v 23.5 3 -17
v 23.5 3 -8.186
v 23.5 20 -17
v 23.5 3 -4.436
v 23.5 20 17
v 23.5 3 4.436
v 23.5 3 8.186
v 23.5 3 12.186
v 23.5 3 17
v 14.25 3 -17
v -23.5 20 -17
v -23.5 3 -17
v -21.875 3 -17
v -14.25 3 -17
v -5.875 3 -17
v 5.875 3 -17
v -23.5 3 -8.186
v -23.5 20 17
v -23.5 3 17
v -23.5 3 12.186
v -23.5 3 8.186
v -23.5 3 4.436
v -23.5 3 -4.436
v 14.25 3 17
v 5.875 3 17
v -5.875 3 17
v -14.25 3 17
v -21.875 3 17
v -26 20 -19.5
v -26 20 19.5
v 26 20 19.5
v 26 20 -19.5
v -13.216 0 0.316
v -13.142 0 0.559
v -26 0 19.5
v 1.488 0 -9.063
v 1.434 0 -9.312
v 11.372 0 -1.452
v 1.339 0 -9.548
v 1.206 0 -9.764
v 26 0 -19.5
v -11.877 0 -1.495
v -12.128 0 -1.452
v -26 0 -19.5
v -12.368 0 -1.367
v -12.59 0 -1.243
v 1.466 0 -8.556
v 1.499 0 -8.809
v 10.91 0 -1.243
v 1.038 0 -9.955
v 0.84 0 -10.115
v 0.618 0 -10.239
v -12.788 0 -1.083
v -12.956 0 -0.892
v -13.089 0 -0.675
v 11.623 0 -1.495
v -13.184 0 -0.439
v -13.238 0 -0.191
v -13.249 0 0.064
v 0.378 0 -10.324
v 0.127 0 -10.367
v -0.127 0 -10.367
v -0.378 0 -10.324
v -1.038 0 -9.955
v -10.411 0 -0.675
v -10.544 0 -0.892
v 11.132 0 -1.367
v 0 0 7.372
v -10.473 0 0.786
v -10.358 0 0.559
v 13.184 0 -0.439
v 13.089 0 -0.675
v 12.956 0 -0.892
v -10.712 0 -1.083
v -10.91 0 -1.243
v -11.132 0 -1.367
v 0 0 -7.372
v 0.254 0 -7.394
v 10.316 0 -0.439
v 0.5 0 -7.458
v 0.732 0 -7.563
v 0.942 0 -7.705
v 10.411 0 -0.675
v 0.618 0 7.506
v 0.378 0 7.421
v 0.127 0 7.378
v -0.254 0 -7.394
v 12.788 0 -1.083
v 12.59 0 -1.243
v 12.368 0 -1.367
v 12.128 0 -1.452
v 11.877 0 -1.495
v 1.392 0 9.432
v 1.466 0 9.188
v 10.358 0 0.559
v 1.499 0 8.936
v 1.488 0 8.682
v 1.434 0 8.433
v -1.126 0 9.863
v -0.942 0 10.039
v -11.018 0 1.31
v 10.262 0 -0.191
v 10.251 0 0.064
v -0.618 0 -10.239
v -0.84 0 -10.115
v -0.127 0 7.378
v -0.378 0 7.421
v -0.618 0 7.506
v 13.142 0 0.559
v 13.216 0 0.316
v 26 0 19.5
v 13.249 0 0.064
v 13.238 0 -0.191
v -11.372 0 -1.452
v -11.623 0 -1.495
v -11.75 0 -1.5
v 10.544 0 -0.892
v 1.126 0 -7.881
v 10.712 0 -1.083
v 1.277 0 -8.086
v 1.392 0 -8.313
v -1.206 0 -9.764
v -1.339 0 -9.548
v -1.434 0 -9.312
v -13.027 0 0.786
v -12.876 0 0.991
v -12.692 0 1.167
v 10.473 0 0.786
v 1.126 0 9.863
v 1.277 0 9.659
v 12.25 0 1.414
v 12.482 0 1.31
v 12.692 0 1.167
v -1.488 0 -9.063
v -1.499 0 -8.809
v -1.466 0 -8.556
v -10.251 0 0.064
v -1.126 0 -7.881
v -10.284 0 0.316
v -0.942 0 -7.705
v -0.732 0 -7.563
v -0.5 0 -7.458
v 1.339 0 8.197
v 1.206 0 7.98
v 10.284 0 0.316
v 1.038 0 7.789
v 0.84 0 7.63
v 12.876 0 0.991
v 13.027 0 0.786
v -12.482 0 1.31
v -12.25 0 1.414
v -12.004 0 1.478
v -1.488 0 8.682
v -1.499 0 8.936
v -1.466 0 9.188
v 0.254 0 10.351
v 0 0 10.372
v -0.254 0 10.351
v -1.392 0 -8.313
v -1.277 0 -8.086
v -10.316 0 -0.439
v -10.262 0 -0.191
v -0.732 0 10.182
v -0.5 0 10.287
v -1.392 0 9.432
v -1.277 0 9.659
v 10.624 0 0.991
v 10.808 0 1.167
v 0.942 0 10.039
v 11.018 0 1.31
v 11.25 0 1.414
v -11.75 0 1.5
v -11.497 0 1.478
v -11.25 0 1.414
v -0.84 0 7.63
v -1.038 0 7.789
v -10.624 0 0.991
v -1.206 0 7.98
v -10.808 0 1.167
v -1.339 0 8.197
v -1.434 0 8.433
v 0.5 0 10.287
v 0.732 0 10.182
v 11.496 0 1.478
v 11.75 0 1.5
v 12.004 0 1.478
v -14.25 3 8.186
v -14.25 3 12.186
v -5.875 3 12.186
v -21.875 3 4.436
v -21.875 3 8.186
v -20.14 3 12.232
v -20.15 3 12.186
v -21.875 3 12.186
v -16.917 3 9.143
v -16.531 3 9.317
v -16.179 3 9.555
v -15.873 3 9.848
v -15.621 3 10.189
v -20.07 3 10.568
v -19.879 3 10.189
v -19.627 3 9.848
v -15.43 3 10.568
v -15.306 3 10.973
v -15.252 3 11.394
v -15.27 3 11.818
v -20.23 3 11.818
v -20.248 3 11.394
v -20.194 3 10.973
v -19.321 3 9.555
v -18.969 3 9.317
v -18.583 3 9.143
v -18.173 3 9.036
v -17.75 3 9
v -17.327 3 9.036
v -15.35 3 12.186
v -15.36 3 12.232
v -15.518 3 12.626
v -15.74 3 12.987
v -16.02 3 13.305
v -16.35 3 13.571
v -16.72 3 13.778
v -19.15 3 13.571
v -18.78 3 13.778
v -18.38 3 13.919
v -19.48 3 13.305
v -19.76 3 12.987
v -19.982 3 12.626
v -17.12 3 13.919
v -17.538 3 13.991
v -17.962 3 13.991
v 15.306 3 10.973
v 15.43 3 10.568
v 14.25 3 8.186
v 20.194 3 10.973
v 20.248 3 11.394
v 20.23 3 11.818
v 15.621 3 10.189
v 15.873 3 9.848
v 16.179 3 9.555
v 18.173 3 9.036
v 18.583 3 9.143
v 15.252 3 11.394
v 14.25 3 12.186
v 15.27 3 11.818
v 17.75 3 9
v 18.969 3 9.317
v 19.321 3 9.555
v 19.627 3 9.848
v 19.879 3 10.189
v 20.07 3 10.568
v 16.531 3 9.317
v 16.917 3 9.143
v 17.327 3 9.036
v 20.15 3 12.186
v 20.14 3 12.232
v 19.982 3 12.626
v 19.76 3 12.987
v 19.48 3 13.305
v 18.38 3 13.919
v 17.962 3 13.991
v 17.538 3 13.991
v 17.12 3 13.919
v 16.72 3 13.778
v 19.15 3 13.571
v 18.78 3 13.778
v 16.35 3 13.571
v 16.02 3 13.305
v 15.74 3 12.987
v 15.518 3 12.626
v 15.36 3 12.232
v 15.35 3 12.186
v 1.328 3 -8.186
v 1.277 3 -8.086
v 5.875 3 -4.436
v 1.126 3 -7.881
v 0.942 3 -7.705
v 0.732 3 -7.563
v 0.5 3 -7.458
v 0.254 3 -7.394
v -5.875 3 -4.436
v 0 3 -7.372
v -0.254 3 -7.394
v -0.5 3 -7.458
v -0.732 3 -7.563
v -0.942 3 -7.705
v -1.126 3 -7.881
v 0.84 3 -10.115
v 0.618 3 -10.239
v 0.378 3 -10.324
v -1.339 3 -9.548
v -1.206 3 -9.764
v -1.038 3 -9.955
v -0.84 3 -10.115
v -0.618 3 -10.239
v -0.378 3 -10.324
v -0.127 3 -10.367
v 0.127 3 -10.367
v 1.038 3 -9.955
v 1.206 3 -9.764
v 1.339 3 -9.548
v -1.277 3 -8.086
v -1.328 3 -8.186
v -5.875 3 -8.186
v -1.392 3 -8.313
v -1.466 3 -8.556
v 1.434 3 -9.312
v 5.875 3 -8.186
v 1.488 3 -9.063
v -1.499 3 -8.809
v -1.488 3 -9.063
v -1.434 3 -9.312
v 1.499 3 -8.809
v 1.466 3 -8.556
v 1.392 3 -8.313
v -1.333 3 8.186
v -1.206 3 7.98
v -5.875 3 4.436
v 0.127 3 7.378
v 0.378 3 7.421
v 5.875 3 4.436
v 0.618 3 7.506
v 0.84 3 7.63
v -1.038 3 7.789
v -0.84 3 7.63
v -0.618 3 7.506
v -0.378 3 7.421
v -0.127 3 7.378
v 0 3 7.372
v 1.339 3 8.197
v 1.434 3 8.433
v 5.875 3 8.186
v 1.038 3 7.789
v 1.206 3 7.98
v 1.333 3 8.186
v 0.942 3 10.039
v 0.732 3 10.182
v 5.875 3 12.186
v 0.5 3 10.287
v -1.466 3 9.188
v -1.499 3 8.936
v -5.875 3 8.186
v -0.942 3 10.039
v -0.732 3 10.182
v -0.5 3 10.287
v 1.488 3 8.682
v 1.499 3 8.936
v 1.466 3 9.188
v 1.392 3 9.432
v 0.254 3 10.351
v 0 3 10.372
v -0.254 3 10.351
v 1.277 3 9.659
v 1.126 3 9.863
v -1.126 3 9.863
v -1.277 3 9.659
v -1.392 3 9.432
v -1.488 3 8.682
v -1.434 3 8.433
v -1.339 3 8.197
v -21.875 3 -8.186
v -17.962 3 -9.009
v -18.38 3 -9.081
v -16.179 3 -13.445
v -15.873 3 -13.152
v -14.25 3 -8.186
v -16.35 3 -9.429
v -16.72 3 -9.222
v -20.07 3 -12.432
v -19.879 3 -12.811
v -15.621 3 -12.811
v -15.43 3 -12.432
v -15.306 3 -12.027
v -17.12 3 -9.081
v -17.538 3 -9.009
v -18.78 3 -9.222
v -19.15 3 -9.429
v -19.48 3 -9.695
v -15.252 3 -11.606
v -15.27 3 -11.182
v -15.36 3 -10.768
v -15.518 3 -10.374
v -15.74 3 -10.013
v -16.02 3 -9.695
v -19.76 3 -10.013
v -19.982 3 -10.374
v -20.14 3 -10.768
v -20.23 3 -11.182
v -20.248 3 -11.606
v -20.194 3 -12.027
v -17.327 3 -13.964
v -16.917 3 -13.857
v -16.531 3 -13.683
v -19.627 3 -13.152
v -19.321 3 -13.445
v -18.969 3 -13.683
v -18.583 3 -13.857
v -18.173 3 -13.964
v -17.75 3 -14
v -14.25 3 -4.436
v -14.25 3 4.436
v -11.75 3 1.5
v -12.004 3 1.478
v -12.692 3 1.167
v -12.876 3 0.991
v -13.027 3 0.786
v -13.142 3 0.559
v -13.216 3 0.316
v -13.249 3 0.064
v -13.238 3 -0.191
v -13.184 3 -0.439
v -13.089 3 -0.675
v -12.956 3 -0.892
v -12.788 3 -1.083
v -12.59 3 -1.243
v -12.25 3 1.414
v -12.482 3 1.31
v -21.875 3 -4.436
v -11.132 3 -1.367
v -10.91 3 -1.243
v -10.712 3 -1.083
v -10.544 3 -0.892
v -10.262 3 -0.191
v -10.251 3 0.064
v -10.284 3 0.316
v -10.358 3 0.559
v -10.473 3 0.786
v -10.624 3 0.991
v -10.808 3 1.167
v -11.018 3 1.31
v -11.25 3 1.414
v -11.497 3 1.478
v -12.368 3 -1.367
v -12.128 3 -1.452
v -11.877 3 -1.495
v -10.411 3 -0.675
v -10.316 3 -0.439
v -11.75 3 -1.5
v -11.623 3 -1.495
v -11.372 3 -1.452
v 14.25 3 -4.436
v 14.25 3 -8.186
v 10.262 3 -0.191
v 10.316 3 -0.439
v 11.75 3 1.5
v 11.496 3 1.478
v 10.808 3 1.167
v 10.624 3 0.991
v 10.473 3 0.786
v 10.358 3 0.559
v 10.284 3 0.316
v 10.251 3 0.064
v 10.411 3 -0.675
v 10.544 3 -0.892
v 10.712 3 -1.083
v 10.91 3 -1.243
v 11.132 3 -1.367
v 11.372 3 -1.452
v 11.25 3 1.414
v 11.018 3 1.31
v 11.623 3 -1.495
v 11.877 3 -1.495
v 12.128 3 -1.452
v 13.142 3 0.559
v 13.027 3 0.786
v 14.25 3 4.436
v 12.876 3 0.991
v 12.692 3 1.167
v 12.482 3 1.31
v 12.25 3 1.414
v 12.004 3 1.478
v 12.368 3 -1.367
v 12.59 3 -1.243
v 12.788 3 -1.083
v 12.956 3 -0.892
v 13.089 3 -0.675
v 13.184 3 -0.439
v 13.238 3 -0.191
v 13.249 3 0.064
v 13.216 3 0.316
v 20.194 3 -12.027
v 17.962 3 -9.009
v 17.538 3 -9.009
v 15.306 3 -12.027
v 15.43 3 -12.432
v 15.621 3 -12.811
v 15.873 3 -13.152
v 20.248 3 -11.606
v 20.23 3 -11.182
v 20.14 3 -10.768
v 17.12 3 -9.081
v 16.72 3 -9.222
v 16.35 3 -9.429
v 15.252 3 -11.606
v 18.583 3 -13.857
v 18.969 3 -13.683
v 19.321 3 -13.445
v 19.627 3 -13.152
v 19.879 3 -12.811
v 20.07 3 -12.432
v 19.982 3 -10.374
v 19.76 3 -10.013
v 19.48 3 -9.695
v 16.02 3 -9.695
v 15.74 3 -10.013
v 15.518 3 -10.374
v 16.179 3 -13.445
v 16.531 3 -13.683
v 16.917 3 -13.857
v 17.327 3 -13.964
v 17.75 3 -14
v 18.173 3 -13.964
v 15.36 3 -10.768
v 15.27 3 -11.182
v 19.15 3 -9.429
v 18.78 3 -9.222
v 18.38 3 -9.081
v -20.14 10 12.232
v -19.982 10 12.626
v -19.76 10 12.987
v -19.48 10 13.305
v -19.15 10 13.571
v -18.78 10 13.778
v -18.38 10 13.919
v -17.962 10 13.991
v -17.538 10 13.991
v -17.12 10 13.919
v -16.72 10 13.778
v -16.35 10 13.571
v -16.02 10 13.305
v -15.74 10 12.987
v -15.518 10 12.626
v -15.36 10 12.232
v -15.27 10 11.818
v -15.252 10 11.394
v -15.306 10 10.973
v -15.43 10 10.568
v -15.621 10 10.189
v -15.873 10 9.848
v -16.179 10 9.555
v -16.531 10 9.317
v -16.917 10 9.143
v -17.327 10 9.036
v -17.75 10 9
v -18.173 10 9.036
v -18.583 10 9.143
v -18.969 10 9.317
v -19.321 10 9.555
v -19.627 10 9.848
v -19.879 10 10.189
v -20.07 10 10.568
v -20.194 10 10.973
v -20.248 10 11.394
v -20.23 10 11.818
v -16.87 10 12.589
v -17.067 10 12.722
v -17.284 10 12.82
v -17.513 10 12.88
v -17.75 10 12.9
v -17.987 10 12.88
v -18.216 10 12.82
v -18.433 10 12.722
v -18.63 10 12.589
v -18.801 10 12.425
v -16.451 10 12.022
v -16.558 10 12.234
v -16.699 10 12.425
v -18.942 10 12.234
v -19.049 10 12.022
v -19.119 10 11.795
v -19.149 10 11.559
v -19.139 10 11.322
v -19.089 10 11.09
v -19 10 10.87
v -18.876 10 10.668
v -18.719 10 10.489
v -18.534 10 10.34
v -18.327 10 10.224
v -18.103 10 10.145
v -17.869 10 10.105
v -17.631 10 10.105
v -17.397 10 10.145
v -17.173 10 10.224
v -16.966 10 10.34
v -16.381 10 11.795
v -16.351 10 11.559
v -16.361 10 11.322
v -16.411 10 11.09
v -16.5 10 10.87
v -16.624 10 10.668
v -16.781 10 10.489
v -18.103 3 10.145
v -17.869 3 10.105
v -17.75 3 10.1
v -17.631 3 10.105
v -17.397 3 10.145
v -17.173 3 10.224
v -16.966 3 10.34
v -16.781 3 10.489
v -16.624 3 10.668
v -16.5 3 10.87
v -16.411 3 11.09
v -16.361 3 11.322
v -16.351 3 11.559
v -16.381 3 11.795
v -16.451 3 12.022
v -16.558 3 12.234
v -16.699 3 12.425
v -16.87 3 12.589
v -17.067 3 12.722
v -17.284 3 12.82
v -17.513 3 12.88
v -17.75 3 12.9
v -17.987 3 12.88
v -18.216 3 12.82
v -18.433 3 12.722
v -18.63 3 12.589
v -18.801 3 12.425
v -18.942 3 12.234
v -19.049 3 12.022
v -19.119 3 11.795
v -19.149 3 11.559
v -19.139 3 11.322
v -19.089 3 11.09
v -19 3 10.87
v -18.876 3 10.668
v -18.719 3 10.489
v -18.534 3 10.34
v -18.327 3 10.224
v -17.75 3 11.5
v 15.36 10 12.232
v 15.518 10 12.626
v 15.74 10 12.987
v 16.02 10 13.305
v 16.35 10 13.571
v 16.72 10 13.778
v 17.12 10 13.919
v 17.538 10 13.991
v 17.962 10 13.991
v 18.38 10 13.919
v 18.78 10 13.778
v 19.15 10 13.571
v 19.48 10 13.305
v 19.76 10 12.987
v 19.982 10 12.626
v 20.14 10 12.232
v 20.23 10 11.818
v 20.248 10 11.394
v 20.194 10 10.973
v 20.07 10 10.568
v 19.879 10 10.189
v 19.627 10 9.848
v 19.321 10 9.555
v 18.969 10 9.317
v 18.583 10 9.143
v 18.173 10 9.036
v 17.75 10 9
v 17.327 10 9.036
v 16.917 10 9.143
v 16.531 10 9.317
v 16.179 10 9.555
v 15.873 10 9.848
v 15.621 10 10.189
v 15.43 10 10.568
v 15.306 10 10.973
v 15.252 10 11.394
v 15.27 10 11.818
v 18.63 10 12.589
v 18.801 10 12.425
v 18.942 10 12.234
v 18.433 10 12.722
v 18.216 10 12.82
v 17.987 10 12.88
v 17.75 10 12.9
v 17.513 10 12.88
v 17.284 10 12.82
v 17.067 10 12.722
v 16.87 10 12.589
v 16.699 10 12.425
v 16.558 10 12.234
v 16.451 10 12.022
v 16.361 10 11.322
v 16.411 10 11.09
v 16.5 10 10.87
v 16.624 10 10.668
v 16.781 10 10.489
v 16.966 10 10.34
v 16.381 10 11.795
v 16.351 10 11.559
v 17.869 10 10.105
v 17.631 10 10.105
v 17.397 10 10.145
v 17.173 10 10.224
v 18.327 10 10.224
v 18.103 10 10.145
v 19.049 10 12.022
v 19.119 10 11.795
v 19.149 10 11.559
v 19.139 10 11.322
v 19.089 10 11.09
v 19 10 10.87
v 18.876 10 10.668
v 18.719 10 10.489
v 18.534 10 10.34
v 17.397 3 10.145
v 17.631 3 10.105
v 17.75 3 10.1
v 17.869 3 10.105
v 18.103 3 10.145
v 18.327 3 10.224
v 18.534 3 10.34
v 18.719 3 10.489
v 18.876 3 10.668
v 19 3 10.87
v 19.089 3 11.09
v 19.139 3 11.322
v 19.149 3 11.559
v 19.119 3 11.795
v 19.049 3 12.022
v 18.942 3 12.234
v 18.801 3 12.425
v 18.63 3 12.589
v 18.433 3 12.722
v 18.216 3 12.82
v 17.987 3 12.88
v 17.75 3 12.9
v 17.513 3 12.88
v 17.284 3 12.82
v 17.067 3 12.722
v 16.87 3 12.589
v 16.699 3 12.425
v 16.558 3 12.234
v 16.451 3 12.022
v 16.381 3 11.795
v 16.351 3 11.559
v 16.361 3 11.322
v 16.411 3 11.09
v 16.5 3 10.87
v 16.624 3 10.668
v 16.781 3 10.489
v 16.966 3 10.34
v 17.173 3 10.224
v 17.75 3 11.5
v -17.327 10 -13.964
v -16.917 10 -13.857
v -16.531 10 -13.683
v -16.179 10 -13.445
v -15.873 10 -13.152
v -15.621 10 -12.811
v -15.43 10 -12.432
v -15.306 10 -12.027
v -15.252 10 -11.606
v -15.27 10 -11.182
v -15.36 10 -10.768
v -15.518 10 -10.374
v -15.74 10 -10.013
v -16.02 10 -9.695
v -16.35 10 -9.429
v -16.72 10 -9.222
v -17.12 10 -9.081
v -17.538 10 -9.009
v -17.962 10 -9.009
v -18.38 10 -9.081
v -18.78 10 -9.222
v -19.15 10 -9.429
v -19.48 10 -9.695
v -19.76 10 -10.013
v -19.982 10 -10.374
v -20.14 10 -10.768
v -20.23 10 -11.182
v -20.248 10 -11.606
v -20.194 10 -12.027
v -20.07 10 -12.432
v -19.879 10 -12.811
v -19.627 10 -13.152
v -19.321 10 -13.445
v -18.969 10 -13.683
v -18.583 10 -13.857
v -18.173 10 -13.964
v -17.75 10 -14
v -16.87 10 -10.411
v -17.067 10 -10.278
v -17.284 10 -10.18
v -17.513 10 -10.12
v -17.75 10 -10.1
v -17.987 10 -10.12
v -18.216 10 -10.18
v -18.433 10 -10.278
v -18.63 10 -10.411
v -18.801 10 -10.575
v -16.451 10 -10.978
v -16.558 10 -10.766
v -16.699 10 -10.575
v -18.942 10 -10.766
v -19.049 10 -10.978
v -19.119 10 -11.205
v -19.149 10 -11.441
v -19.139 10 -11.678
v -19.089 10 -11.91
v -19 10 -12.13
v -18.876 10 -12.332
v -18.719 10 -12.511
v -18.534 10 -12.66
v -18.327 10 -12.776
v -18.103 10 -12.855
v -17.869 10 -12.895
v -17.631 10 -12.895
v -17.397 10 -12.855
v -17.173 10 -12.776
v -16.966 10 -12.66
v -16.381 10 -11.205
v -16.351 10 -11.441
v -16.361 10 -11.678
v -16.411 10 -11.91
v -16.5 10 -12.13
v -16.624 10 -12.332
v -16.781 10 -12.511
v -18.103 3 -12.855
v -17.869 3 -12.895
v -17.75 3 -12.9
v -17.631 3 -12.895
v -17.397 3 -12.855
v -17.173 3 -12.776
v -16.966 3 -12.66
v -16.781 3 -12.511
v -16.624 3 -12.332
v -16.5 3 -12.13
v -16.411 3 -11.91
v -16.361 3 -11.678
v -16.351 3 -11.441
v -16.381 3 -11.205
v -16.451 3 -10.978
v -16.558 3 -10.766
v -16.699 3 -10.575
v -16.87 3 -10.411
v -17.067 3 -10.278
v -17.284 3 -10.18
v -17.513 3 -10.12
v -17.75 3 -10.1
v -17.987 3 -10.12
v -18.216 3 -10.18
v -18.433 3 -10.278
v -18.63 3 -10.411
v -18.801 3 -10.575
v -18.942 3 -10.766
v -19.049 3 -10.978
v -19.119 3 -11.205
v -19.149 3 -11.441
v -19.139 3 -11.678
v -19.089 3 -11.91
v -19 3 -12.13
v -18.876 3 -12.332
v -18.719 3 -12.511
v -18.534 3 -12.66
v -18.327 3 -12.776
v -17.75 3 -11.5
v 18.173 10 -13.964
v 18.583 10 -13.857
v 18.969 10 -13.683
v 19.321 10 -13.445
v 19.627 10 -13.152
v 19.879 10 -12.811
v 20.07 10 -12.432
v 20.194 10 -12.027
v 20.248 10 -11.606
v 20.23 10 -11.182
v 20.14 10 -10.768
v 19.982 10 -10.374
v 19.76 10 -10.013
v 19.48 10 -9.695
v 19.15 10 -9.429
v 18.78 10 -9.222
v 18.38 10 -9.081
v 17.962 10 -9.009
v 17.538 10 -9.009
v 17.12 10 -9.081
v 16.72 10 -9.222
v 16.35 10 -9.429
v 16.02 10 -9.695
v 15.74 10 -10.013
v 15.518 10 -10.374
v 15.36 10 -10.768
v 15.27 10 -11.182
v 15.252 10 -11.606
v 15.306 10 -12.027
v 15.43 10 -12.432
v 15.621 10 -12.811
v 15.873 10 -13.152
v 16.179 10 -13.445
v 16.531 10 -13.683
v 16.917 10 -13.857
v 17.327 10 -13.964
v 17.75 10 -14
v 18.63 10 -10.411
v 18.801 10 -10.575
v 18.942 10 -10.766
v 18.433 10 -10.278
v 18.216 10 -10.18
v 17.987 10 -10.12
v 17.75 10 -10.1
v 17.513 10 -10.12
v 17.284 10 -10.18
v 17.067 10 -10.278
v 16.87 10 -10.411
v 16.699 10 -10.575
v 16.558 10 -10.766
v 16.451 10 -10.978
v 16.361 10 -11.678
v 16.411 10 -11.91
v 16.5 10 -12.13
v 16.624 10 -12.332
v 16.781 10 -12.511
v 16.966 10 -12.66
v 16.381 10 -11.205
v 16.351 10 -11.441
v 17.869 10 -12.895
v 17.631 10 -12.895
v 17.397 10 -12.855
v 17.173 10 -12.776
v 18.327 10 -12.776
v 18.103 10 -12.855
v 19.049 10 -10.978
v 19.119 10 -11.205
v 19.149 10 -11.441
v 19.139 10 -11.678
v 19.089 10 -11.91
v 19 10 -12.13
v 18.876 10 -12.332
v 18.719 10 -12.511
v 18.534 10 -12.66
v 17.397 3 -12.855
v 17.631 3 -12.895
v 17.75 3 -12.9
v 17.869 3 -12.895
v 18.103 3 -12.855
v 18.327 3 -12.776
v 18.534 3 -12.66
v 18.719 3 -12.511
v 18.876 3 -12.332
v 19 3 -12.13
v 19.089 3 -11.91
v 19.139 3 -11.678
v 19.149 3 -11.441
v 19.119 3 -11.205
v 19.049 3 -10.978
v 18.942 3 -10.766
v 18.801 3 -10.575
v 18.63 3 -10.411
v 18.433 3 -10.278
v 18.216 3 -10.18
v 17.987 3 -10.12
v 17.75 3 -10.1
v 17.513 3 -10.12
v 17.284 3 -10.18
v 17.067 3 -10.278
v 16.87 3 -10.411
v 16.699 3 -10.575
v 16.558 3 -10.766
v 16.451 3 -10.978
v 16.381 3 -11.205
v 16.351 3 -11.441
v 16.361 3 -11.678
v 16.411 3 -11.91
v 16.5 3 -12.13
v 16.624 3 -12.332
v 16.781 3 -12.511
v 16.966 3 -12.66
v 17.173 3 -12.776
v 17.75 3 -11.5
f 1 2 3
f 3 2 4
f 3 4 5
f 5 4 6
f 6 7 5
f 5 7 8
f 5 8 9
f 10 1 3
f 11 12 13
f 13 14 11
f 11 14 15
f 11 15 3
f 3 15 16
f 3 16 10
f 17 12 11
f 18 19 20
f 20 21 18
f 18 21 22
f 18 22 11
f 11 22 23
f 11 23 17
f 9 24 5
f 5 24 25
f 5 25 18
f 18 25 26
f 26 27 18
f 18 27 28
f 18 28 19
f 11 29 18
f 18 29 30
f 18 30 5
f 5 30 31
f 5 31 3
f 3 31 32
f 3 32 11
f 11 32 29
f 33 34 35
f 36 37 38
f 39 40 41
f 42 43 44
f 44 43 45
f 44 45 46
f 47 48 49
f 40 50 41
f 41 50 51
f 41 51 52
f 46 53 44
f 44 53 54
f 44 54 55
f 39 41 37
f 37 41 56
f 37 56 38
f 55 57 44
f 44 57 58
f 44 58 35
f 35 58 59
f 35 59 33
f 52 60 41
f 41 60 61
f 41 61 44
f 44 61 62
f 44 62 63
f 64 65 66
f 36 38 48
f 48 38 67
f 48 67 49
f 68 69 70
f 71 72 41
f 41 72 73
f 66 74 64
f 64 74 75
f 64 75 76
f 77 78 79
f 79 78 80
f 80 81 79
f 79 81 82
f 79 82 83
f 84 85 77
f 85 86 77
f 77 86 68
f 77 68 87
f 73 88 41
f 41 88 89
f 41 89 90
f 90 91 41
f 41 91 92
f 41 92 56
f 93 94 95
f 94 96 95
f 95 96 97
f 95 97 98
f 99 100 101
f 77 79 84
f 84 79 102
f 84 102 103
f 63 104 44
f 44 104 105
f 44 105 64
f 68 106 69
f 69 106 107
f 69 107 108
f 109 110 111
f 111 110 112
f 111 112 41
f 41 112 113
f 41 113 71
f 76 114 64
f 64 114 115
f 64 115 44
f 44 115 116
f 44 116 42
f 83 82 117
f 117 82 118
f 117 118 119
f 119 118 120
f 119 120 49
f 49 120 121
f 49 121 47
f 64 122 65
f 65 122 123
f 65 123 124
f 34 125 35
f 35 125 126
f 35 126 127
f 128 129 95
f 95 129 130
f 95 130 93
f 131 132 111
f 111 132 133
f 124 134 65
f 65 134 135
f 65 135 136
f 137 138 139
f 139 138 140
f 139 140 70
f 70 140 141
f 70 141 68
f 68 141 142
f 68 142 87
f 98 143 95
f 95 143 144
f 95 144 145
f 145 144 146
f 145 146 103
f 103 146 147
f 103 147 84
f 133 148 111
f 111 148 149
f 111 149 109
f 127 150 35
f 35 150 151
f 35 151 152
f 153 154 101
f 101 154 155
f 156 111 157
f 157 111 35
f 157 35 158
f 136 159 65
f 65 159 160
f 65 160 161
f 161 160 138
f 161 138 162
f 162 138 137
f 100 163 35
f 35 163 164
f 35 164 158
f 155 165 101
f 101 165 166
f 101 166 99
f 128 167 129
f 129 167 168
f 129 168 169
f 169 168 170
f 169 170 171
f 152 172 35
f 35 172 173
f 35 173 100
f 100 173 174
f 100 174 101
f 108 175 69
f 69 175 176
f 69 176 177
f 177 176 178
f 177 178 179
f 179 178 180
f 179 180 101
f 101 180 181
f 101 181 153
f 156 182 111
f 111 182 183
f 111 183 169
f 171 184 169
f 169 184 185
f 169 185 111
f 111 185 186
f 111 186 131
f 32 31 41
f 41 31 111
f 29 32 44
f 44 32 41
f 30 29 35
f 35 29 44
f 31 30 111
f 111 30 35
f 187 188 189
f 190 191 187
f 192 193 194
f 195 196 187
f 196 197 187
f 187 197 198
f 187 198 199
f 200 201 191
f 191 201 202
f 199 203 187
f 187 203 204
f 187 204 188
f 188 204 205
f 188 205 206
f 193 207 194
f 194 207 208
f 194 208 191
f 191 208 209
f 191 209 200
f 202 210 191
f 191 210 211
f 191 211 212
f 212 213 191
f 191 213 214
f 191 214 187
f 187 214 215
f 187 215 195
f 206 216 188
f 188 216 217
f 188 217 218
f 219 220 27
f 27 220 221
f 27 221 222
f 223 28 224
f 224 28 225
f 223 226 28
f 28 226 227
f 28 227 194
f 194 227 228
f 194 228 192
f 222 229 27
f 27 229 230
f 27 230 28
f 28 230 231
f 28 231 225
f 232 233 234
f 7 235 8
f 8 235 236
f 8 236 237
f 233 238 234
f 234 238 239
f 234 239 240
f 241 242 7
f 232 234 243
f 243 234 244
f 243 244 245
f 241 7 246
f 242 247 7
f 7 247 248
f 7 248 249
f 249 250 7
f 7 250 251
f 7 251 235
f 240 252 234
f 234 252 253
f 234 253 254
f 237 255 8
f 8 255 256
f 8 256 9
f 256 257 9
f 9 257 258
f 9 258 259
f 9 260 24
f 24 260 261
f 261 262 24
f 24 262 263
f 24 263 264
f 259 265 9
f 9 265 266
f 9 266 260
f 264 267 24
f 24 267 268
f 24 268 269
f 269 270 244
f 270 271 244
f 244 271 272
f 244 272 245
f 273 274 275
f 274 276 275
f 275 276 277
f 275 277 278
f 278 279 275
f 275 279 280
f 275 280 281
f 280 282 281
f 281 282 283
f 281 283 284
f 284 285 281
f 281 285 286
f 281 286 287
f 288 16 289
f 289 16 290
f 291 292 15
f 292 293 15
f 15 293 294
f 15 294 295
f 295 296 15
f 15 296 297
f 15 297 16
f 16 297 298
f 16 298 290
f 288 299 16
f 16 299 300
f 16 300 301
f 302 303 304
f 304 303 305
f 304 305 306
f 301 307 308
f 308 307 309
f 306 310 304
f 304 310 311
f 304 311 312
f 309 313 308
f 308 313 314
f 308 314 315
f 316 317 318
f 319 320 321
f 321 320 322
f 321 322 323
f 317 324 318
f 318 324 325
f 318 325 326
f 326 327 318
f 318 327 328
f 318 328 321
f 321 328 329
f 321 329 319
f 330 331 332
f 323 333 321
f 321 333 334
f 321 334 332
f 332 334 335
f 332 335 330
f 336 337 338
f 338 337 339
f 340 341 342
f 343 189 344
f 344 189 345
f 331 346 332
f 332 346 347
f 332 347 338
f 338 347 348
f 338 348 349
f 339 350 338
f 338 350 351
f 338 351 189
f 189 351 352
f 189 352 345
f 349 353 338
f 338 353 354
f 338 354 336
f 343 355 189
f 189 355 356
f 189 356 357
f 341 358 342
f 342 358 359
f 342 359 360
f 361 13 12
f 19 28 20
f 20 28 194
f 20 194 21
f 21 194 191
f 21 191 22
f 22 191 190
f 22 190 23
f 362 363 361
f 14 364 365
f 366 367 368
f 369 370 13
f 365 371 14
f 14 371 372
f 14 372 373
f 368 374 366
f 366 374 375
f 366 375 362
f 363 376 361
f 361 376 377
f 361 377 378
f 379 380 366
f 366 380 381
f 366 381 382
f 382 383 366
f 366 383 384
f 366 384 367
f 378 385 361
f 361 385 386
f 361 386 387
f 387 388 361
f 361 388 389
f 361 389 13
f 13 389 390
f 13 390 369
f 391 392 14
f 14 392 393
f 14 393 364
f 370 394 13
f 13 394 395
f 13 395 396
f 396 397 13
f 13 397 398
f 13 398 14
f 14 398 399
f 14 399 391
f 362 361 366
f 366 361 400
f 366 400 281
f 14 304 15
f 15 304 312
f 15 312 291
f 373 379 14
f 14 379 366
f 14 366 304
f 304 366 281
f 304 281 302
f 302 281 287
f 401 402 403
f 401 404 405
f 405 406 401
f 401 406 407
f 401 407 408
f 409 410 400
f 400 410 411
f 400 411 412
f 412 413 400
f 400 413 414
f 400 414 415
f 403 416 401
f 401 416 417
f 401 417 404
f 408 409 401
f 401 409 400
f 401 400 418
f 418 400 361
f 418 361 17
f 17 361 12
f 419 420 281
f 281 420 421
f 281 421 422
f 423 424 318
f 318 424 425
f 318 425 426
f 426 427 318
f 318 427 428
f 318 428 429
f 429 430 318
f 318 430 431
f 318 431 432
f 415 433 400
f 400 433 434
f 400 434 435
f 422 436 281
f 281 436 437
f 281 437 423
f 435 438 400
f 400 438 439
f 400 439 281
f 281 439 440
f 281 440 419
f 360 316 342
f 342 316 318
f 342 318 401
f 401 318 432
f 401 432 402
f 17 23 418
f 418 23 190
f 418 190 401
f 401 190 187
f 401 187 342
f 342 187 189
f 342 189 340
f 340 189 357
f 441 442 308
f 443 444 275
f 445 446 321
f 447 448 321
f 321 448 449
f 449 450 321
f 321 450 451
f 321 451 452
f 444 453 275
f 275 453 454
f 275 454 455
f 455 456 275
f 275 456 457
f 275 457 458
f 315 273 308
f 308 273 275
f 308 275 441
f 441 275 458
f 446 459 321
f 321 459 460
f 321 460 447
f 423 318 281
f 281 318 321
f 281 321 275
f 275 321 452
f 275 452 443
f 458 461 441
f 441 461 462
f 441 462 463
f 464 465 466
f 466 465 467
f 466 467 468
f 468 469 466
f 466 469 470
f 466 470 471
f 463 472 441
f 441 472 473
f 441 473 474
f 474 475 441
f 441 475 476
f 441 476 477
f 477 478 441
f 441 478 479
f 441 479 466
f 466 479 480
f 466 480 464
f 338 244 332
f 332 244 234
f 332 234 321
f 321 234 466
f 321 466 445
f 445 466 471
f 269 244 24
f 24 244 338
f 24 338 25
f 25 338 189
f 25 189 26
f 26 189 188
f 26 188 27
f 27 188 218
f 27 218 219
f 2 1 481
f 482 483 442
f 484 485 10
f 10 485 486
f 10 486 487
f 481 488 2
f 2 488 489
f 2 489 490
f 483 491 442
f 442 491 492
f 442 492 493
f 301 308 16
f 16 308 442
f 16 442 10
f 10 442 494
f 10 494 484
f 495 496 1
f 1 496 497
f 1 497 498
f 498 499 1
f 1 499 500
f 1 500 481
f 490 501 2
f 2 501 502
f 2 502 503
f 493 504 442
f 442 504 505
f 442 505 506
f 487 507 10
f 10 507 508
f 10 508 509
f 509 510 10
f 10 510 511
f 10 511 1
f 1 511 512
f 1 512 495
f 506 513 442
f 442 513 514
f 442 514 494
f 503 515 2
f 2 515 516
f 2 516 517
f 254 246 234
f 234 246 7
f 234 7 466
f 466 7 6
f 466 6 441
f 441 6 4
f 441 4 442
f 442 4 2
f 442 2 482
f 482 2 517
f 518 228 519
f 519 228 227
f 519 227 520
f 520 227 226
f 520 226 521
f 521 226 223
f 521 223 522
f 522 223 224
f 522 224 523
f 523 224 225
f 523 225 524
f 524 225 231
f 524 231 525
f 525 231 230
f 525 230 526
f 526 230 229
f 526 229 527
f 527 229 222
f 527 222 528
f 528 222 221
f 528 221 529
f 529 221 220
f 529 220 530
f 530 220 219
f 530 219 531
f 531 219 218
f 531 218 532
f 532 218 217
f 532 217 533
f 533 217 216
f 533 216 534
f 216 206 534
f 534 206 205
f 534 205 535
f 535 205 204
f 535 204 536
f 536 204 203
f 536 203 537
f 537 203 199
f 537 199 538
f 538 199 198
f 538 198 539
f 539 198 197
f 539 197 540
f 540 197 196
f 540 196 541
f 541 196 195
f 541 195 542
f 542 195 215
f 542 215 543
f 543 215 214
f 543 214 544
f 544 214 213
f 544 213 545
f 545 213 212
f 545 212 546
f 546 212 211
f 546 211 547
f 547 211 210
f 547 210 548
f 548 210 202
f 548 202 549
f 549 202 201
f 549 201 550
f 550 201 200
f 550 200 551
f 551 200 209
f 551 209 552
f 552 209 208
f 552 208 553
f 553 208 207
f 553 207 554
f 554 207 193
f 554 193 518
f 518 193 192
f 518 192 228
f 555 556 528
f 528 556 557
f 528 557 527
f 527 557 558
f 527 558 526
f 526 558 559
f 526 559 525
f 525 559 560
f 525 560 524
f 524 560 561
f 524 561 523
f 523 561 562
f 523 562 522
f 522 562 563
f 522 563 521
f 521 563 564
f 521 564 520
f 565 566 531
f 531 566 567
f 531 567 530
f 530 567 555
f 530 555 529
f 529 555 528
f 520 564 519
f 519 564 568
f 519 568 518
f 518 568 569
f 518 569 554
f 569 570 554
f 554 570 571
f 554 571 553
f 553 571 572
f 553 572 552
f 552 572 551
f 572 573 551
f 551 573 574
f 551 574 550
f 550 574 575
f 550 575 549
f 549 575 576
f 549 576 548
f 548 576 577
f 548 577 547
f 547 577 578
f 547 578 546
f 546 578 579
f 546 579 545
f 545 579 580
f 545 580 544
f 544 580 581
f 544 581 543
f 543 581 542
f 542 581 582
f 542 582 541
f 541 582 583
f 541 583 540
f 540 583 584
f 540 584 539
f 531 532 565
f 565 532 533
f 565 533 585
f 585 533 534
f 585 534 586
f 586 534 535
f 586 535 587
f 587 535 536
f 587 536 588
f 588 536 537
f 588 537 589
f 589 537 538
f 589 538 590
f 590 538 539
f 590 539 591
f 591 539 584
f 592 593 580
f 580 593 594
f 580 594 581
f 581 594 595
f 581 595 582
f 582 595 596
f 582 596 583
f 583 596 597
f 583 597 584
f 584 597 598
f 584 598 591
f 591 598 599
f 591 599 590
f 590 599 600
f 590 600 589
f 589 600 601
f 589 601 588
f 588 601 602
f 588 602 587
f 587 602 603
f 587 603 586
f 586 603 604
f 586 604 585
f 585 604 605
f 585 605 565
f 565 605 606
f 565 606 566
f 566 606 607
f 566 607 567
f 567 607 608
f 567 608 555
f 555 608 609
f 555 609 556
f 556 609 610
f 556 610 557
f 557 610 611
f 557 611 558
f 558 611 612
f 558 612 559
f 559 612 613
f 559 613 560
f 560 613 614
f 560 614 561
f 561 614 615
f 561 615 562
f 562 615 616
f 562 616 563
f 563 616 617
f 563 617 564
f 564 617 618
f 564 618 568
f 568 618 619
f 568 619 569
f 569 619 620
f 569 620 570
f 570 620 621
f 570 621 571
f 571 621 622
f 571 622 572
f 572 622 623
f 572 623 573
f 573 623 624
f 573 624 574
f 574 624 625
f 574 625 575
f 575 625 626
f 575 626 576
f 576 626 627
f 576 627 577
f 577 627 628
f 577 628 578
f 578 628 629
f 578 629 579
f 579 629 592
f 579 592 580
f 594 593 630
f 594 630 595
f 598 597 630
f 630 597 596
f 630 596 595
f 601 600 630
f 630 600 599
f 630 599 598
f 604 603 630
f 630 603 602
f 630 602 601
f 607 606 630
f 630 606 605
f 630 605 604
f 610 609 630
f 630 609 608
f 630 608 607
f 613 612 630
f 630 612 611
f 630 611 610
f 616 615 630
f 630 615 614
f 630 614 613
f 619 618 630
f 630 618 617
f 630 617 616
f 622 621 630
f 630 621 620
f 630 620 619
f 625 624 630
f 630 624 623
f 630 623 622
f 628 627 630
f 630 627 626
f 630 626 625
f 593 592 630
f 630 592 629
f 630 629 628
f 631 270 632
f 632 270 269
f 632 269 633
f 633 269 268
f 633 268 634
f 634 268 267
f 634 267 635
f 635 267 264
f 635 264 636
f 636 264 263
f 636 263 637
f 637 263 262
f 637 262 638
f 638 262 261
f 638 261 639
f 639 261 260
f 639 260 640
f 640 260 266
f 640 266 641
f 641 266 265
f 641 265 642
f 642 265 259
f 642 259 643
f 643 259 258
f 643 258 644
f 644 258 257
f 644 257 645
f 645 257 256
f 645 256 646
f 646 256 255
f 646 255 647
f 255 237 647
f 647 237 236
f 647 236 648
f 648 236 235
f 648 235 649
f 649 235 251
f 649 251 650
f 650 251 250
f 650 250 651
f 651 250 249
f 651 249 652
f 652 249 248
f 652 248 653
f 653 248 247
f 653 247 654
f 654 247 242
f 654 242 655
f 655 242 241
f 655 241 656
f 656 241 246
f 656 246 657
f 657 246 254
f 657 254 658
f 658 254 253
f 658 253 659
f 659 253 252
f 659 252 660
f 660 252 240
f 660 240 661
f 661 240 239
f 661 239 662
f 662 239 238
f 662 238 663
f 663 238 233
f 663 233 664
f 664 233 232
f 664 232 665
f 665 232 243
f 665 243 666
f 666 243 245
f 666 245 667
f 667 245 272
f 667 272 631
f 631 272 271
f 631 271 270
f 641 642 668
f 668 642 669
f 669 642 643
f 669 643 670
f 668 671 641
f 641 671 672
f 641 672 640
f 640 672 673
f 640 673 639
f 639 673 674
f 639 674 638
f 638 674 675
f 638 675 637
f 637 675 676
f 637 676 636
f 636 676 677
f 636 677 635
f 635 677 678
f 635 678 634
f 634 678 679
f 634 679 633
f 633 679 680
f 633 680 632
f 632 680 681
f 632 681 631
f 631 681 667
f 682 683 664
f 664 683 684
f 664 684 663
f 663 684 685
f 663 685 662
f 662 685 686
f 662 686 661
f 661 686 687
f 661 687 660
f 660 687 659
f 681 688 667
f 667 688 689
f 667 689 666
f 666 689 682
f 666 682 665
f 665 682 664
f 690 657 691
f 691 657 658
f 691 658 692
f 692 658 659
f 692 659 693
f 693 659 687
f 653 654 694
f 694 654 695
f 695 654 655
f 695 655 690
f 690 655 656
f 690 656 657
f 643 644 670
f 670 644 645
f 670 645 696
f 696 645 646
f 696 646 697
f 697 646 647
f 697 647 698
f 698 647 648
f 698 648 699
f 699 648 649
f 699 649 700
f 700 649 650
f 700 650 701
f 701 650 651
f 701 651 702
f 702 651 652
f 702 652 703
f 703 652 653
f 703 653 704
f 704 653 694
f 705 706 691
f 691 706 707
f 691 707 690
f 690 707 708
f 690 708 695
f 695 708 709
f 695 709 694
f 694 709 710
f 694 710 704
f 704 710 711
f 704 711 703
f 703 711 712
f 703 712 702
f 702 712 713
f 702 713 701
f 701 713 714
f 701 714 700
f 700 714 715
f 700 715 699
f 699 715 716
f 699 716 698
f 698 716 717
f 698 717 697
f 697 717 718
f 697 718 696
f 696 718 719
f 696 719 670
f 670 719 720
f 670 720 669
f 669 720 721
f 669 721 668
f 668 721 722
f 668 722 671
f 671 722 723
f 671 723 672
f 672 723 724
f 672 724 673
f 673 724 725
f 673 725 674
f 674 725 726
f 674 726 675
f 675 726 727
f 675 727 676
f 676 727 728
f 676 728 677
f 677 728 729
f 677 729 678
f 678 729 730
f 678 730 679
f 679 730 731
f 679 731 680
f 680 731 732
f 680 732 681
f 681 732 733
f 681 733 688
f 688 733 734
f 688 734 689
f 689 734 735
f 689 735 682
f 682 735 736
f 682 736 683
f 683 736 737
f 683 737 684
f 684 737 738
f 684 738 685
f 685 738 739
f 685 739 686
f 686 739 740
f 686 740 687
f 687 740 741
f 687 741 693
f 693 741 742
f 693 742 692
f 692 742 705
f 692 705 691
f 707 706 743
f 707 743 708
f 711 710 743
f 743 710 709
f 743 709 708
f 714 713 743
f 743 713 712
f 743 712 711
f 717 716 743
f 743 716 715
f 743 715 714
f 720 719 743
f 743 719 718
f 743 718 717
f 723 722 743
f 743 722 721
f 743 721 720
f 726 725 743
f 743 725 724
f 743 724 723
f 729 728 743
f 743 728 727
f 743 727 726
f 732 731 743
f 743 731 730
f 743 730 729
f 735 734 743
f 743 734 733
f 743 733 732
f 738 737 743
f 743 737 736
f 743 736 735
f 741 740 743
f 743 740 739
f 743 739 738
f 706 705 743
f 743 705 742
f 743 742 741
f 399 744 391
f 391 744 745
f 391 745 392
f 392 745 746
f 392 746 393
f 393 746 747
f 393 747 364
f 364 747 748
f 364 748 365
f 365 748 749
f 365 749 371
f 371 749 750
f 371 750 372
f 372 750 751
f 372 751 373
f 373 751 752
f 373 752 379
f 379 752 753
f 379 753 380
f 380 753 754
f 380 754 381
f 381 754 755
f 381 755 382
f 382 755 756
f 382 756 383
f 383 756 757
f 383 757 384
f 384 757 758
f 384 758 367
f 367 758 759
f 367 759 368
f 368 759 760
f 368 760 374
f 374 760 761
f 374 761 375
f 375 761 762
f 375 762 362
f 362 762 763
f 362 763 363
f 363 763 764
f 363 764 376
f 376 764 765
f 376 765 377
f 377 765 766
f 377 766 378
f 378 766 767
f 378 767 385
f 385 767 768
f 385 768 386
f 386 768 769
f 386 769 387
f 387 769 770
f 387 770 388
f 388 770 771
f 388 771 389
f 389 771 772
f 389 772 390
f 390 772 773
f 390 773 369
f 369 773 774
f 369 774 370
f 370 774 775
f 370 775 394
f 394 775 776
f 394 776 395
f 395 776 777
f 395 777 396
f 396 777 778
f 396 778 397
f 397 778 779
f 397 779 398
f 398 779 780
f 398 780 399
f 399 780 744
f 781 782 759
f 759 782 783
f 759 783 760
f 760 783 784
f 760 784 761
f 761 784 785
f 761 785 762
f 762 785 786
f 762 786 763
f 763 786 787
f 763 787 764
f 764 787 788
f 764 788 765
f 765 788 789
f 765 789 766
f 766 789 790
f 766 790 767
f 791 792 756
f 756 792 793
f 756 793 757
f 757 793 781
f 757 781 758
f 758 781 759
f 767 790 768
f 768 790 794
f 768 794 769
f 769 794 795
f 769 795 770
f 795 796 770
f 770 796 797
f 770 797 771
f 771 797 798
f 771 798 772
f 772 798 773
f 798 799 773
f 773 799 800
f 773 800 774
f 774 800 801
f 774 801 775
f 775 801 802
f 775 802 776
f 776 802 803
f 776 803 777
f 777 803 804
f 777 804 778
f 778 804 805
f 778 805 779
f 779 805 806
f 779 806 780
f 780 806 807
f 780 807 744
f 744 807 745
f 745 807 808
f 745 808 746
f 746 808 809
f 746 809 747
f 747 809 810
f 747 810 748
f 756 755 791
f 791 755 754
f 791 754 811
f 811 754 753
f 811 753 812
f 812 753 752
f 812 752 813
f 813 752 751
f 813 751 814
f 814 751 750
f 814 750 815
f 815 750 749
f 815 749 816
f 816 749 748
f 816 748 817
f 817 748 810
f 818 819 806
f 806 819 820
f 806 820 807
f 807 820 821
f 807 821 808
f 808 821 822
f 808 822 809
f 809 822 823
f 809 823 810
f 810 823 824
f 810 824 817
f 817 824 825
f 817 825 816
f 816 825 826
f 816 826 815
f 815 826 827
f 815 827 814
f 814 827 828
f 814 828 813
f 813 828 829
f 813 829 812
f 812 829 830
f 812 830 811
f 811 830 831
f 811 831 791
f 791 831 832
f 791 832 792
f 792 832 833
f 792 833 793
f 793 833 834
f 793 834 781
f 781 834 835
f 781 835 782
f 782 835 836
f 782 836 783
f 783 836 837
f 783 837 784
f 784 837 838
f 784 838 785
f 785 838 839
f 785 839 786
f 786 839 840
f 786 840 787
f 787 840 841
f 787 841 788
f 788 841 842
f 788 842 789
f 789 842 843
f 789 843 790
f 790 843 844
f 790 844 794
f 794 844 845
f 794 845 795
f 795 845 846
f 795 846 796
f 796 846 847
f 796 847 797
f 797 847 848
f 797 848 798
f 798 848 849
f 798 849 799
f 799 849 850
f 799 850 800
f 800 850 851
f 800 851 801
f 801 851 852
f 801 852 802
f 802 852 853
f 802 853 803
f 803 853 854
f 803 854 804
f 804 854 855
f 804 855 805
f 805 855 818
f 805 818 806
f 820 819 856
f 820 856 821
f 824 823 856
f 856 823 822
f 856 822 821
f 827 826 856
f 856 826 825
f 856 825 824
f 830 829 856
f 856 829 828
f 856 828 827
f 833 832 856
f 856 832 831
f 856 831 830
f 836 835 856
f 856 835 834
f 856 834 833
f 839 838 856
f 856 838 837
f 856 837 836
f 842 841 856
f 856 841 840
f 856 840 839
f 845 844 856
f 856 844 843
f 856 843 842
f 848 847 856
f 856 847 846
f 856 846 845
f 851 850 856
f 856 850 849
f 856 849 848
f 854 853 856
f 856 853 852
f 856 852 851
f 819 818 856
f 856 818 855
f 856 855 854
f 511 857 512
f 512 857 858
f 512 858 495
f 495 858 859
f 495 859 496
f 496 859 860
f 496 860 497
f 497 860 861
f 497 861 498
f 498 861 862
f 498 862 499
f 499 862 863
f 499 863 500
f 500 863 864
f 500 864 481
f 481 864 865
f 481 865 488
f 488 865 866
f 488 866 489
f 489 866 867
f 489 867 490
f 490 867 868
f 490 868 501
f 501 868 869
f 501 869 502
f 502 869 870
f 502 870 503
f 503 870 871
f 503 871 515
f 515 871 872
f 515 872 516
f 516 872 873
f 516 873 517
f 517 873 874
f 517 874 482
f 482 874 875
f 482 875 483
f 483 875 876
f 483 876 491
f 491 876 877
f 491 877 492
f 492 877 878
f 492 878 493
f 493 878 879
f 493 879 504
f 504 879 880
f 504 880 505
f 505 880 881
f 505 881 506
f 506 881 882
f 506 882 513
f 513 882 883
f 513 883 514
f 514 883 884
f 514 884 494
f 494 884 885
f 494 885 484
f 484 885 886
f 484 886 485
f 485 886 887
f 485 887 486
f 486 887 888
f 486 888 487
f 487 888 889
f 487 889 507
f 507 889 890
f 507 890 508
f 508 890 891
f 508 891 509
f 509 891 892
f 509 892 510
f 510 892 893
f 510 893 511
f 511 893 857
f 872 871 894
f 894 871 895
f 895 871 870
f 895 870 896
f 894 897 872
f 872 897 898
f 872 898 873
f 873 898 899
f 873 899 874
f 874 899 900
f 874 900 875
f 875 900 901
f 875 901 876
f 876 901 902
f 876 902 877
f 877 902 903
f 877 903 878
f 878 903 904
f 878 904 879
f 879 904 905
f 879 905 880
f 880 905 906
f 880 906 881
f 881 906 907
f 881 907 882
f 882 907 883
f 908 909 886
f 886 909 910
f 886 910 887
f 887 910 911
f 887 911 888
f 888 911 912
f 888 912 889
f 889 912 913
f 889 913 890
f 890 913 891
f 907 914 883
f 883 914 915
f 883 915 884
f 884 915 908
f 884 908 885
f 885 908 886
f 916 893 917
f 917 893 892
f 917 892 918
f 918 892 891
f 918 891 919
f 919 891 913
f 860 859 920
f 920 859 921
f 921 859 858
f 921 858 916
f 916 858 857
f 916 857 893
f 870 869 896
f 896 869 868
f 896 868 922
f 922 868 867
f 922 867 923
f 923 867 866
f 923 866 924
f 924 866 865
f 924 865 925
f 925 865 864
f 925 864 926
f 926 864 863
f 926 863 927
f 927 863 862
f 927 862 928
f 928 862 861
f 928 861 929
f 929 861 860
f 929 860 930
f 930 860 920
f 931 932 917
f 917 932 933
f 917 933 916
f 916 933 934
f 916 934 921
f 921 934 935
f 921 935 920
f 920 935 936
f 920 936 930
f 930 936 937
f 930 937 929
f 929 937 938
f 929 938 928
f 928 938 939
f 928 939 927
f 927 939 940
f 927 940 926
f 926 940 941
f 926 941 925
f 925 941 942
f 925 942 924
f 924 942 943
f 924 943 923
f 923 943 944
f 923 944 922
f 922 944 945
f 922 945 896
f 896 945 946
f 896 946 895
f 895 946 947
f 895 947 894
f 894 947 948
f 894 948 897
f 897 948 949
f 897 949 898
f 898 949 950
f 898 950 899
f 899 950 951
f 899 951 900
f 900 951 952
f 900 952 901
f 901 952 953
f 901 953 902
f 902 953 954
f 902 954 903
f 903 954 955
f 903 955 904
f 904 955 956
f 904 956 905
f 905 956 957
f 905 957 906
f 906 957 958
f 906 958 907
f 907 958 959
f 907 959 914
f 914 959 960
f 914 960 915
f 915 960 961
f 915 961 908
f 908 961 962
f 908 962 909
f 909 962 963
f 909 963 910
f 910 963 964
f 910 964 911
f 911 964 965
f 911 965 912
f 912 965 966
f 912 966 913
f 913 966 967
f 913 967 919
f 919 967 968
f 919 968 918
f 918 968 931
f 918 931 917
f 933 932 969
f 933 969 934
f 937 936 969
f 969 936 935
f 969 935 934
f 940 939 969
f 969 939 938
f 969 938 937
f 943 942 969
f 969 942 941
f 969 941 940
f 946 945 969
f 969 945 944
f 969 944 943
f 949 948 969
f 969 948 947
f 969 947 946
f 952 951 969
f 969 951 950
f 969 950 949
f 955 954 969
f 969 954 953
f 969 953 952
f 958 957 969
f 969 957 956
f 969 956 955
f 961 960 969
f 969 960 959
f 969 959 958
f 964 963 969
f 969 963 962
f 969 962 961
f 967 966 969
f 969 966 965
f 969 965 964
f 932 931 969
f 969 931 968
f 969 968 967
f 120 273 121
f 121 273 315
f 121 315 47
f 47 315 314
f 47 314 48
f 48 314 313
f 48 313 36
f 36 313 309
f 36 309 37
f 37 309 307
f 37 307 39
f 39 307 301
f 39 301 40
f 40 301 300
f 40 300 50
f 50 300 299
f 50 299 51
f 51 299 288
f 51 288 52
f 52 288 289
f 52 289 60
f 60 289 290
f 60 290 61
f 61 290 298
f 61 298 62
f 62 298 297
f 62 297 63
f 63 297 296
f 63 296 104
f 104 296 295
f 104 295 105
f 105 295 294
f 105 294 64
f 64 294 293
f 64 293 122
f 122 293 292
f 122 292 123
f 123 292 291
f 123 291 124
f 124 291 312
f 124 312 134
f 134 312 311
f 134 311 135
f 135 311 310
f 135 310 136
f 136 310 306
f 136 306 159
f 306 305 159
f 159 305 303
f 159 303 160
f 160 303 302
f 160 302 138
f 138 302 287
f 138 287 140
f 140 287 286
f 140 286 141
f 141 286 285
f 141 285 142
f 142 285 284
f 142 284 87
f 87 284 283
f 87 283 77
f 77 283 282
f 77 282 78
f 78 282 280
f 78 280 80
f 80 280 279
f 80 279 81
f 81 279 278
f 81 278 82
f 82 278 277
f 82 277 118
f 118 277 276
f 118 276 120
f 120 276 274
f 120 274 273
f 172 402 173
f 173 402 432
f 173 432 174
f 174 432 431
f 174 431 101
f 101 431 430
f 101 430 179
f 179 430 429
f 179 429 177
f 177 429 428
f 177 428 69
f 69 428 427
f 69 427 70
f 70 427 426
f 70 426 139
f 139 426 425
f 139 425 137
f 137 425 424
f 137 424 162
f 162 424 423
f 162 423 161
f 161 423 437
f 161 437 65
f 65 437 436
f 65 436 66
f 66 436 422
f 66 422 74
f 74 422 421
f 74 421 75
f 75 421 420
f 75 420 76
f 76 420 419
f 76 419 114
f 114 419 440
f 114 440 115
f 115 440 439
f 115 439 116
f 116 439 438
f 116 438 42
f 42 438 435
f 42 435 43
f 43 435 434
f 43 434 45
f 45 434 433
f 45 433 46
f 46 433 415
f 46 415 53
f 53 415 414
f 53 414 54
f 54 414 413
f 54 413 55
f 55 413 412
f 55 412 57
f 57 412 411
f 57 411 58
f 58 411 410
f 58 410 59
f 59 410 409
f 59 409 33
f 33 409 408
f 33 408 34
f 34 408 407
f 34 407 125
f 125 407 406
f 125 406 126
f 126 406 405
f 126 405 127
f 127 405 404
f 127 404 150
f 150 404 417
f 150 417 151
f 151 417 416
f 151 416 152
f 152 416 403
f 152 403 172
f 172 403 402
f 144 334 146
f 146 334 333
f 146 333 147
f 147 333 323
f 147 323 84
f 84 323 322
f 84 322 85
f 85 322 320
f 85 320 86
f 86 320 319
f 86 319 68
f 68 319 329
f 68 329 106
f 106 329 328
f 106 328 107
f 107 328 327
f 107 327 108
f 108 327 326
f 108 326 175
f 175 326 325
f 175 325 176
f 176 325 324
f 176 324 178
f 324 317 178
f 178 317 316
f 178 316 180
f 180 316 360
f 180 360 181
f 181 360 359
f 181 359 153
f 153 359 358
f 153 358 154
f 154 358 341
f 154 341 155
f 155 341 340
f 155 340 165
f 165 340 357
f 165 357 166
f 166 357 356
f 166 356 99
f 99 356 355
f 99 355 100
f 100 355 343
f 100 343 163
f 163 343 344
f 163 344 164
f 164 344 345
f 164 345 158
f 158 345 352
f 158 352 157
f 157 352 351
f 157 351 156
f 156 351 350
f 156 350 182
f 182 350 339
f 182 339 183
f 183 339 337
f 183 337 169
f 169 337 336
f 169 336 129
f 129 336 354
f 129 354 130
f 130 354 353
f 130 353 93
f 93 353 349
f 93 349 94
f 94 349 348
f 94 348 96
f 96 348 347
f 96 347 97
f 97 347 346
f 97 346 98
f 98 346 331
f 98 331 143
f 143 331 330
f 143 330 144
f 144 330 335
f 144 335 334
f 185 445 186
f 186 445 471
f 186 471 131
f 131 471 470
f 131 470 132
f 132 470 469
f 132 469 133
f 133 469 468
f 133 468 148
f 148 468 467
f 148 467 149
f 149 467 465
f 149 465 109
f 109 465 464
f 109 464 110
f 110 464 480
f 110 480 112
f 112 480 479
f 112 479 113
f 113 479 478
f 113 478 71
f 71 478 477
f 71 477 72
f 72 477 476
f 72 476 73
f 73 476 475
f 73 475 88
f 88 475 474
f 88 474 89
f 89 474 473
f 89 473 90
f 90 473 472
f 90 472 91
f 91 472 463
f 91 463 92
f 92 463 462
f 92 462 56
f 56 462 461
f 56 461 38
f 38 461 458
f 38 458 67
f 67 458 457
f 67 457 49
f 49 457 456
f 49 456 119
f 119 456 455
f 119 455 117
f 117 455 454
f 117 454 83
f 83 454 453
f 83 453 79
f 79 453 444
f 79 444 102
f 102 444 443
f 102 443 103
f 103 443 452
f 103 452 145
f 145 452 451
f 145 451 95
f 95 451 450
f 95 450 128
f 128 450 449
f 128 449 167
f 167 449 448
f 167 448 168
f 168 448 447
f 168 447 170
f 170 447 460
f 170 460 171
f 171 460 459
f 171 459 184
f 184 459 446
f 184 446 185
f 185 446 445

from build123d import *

# Parameters (mm, degrees)
SKETCH_1_W          = 52
SKETCH_1_H          = 39
SKETCH_1_W_2        = 47
SKETCH_1_H_2        = 34
EXTRUDE_1_DEPTH     = 20
SKETCH_2_R          = 2.5
EXTRUDE_2_DEPTH     = 10
EXTRUDE_2_2_DEPTH   = 10
EXTRUDE_2_3_DEPTH   = 10
EXTRUDE_2_4_DEPTH   = 10
SKETCH_3_R          = 1.4
CUT_EXTRUDE_1_DEPTH = 7
SKETCH_4_W          = 52
SKETCH_4_H          = 39
EXTRUDE_3_DEPTH     = 3
SKETCH_5_R          = 1.5
CUT_EXTRUDE_2_DEPTH = 37.67764987


with BuildPart() as part:
    # 草图1 → 凸台-拉伸1 (new body)
    with BuildSketch(Plane(origin=(0, 0, 0), x_dir=(1, 0, 0), z_dir=(0, 1, 0))):
        Rectangle(SKETCH_1_W, SKETCH_1_H)
        Rectangle(SKETCH_1_W_2, SKETCH_1_H_2, mode=Mode.SUBTRACT)
    extrude(amount=EXTRUDE_1_DEPTH)



with BuildPart() as body_2:
    # 草图2 → 凸台-拉伸2 (new body)
    with BuildSketch(Plane.XZ):
        with Locations(Location((-17.75, 11.5, 0), (0, 0, 270))):
            Circle(SKETCH_2_R)
    extrude(amount=-EXTRUDE_2_DEPTH)


with BuildPart() as body_3:
    # 草图2 → Extrude 2 2 (new body)
    with BuildSketch(Plane.XZ):
        with Locations(Location((17.75, 11.5, 0), (0, 0, 270))):
            Circle(SKETCH_2_R)
    extrude(amount=-EXTRUDE_2_2_DEPTH)


with BuildPart() as body_4:
    # 草图2 → Extrude 2 3 (new body)
    with BuildSketch(Plane.XZ):
        with Locations(Location((-17.75, -11.5, 0), (0, 0, 270))):
            Circle(SKETCH_2_R)
    extrude(amount=-EXTRUDE_2_3_DEPTH)


with BuildPart() as body_5:
    # 草图2 → Extrude 2 4 (new body)
    with BuildSketch(Plane.XZ):
        with Locations(Location((17.75, -11.5, 0), (0, 0, 270))):
            Circle(SKETCH_2_R)
    extrude(amount=-EXTRUDE_2_4_DEPTH)


with BuildPart() as cut_extrude_1_tool:
    # 草图3 → 切除-拉伸1 (new body)
    with BuildSketch(Plane(origin=(0, 10, 0), x_dir=(1, 0, 0), z_dir=(0, 1, 0))):
        with Locations(Location((-17.75, 11.5, 0), (0, 0, 270))):
            Circle(SKETCH_3_R)
        with Locations(Location((17.75, 11.5, 0), (0, 0, 270))):
            Circle(SKETCH_3_R)
        with Locations(Location((-17.75, -11.5, 0), (0, 0, 270))):
            Circle(SKETCH_3_R)
        with Locations(Location((17.75, -11.5, 0), (0, 0, 270))):
            Circle(SKETCH_3_R)
    extrude(amount=-CUT_EXTRUDE_1_DEPTH)


with BuildPart() as body_2_1:
    add(body_2.part)

    # 切除-拉伸1: cut by cut_extrude_1_tool
    add(cut_extrude_1_tool.part, mode=Mode.SUBTRACT)


with BuildPart() as body_3_1:
    add(body_3.part)

    # 切除-拉伸1: cut by cut_extrude_1_tool
    add(cut_extrude_1_tool.part, mode=Mode.SUBTRACT)


with BuildPart() as body_4_1:
    add(body_4.part)

    # 切除-拉伸1: cut by cut_extrude_1_tool
    add(cut_extrude_1_tool.part, mode=Mode.SUBTRACT)


with BuildPart() as body_5_1:
    add(body_5.part)

    # 切除-拉伸1: cut by cut_extrude_1_tool
    add(cut_extrude_1_tool.part, mode=Mode.SUBTRACT)


with BuildPart() as part_1:
    add(part.part)

    add(body_2_1.part)  # 凸台-拉伸3 merges body 2

    add(body_3_1.part)  # 凸台-拉伸3 merges body 3

    add(body_4_1.part)  # 凸台-拉伸3 merges body 4

    add(body_5_1.part)  # 凸台-拉伸3 merges body 5
    # 草图4 → 凸台-拉伸3 (add)
    with BuildSketch(Plane.XZ):
        Rectangle(SKETCH_4_W, SKETCH_4_H)
    extrude(amount=-EXTRUDE_3_DEPTH)

    # 草图5 → 切除-拉伸2 (cut, through all)
    with BuildSketch(Plane(origin=(0, 3, 0), x_dir=(1, 0, 0), z_dir=(0, 1, 0))):
        with Locations(Location((0, 8.872353491, 0), (0, 0, 270))):
            Circle(SKETCH_5_R)
        with Locations(Location((11.75, 0, 0), (0, 0, 270))):
            Circle(SKETCH_5_R)
        with Locations(Location((0, -8.872353491, 0), (0, 0, 90))):
            Circle(SKETCH_5_R)
        with Locations(Location((-11.75, 0, 0), (0, 0, 90))):
            Circle(SKETCH_5_R)
    extrude(amount=-CUT_EXTRUDE_2_DEPTH, mode=Mode.SUBTRACT)


solid = part_1.part
